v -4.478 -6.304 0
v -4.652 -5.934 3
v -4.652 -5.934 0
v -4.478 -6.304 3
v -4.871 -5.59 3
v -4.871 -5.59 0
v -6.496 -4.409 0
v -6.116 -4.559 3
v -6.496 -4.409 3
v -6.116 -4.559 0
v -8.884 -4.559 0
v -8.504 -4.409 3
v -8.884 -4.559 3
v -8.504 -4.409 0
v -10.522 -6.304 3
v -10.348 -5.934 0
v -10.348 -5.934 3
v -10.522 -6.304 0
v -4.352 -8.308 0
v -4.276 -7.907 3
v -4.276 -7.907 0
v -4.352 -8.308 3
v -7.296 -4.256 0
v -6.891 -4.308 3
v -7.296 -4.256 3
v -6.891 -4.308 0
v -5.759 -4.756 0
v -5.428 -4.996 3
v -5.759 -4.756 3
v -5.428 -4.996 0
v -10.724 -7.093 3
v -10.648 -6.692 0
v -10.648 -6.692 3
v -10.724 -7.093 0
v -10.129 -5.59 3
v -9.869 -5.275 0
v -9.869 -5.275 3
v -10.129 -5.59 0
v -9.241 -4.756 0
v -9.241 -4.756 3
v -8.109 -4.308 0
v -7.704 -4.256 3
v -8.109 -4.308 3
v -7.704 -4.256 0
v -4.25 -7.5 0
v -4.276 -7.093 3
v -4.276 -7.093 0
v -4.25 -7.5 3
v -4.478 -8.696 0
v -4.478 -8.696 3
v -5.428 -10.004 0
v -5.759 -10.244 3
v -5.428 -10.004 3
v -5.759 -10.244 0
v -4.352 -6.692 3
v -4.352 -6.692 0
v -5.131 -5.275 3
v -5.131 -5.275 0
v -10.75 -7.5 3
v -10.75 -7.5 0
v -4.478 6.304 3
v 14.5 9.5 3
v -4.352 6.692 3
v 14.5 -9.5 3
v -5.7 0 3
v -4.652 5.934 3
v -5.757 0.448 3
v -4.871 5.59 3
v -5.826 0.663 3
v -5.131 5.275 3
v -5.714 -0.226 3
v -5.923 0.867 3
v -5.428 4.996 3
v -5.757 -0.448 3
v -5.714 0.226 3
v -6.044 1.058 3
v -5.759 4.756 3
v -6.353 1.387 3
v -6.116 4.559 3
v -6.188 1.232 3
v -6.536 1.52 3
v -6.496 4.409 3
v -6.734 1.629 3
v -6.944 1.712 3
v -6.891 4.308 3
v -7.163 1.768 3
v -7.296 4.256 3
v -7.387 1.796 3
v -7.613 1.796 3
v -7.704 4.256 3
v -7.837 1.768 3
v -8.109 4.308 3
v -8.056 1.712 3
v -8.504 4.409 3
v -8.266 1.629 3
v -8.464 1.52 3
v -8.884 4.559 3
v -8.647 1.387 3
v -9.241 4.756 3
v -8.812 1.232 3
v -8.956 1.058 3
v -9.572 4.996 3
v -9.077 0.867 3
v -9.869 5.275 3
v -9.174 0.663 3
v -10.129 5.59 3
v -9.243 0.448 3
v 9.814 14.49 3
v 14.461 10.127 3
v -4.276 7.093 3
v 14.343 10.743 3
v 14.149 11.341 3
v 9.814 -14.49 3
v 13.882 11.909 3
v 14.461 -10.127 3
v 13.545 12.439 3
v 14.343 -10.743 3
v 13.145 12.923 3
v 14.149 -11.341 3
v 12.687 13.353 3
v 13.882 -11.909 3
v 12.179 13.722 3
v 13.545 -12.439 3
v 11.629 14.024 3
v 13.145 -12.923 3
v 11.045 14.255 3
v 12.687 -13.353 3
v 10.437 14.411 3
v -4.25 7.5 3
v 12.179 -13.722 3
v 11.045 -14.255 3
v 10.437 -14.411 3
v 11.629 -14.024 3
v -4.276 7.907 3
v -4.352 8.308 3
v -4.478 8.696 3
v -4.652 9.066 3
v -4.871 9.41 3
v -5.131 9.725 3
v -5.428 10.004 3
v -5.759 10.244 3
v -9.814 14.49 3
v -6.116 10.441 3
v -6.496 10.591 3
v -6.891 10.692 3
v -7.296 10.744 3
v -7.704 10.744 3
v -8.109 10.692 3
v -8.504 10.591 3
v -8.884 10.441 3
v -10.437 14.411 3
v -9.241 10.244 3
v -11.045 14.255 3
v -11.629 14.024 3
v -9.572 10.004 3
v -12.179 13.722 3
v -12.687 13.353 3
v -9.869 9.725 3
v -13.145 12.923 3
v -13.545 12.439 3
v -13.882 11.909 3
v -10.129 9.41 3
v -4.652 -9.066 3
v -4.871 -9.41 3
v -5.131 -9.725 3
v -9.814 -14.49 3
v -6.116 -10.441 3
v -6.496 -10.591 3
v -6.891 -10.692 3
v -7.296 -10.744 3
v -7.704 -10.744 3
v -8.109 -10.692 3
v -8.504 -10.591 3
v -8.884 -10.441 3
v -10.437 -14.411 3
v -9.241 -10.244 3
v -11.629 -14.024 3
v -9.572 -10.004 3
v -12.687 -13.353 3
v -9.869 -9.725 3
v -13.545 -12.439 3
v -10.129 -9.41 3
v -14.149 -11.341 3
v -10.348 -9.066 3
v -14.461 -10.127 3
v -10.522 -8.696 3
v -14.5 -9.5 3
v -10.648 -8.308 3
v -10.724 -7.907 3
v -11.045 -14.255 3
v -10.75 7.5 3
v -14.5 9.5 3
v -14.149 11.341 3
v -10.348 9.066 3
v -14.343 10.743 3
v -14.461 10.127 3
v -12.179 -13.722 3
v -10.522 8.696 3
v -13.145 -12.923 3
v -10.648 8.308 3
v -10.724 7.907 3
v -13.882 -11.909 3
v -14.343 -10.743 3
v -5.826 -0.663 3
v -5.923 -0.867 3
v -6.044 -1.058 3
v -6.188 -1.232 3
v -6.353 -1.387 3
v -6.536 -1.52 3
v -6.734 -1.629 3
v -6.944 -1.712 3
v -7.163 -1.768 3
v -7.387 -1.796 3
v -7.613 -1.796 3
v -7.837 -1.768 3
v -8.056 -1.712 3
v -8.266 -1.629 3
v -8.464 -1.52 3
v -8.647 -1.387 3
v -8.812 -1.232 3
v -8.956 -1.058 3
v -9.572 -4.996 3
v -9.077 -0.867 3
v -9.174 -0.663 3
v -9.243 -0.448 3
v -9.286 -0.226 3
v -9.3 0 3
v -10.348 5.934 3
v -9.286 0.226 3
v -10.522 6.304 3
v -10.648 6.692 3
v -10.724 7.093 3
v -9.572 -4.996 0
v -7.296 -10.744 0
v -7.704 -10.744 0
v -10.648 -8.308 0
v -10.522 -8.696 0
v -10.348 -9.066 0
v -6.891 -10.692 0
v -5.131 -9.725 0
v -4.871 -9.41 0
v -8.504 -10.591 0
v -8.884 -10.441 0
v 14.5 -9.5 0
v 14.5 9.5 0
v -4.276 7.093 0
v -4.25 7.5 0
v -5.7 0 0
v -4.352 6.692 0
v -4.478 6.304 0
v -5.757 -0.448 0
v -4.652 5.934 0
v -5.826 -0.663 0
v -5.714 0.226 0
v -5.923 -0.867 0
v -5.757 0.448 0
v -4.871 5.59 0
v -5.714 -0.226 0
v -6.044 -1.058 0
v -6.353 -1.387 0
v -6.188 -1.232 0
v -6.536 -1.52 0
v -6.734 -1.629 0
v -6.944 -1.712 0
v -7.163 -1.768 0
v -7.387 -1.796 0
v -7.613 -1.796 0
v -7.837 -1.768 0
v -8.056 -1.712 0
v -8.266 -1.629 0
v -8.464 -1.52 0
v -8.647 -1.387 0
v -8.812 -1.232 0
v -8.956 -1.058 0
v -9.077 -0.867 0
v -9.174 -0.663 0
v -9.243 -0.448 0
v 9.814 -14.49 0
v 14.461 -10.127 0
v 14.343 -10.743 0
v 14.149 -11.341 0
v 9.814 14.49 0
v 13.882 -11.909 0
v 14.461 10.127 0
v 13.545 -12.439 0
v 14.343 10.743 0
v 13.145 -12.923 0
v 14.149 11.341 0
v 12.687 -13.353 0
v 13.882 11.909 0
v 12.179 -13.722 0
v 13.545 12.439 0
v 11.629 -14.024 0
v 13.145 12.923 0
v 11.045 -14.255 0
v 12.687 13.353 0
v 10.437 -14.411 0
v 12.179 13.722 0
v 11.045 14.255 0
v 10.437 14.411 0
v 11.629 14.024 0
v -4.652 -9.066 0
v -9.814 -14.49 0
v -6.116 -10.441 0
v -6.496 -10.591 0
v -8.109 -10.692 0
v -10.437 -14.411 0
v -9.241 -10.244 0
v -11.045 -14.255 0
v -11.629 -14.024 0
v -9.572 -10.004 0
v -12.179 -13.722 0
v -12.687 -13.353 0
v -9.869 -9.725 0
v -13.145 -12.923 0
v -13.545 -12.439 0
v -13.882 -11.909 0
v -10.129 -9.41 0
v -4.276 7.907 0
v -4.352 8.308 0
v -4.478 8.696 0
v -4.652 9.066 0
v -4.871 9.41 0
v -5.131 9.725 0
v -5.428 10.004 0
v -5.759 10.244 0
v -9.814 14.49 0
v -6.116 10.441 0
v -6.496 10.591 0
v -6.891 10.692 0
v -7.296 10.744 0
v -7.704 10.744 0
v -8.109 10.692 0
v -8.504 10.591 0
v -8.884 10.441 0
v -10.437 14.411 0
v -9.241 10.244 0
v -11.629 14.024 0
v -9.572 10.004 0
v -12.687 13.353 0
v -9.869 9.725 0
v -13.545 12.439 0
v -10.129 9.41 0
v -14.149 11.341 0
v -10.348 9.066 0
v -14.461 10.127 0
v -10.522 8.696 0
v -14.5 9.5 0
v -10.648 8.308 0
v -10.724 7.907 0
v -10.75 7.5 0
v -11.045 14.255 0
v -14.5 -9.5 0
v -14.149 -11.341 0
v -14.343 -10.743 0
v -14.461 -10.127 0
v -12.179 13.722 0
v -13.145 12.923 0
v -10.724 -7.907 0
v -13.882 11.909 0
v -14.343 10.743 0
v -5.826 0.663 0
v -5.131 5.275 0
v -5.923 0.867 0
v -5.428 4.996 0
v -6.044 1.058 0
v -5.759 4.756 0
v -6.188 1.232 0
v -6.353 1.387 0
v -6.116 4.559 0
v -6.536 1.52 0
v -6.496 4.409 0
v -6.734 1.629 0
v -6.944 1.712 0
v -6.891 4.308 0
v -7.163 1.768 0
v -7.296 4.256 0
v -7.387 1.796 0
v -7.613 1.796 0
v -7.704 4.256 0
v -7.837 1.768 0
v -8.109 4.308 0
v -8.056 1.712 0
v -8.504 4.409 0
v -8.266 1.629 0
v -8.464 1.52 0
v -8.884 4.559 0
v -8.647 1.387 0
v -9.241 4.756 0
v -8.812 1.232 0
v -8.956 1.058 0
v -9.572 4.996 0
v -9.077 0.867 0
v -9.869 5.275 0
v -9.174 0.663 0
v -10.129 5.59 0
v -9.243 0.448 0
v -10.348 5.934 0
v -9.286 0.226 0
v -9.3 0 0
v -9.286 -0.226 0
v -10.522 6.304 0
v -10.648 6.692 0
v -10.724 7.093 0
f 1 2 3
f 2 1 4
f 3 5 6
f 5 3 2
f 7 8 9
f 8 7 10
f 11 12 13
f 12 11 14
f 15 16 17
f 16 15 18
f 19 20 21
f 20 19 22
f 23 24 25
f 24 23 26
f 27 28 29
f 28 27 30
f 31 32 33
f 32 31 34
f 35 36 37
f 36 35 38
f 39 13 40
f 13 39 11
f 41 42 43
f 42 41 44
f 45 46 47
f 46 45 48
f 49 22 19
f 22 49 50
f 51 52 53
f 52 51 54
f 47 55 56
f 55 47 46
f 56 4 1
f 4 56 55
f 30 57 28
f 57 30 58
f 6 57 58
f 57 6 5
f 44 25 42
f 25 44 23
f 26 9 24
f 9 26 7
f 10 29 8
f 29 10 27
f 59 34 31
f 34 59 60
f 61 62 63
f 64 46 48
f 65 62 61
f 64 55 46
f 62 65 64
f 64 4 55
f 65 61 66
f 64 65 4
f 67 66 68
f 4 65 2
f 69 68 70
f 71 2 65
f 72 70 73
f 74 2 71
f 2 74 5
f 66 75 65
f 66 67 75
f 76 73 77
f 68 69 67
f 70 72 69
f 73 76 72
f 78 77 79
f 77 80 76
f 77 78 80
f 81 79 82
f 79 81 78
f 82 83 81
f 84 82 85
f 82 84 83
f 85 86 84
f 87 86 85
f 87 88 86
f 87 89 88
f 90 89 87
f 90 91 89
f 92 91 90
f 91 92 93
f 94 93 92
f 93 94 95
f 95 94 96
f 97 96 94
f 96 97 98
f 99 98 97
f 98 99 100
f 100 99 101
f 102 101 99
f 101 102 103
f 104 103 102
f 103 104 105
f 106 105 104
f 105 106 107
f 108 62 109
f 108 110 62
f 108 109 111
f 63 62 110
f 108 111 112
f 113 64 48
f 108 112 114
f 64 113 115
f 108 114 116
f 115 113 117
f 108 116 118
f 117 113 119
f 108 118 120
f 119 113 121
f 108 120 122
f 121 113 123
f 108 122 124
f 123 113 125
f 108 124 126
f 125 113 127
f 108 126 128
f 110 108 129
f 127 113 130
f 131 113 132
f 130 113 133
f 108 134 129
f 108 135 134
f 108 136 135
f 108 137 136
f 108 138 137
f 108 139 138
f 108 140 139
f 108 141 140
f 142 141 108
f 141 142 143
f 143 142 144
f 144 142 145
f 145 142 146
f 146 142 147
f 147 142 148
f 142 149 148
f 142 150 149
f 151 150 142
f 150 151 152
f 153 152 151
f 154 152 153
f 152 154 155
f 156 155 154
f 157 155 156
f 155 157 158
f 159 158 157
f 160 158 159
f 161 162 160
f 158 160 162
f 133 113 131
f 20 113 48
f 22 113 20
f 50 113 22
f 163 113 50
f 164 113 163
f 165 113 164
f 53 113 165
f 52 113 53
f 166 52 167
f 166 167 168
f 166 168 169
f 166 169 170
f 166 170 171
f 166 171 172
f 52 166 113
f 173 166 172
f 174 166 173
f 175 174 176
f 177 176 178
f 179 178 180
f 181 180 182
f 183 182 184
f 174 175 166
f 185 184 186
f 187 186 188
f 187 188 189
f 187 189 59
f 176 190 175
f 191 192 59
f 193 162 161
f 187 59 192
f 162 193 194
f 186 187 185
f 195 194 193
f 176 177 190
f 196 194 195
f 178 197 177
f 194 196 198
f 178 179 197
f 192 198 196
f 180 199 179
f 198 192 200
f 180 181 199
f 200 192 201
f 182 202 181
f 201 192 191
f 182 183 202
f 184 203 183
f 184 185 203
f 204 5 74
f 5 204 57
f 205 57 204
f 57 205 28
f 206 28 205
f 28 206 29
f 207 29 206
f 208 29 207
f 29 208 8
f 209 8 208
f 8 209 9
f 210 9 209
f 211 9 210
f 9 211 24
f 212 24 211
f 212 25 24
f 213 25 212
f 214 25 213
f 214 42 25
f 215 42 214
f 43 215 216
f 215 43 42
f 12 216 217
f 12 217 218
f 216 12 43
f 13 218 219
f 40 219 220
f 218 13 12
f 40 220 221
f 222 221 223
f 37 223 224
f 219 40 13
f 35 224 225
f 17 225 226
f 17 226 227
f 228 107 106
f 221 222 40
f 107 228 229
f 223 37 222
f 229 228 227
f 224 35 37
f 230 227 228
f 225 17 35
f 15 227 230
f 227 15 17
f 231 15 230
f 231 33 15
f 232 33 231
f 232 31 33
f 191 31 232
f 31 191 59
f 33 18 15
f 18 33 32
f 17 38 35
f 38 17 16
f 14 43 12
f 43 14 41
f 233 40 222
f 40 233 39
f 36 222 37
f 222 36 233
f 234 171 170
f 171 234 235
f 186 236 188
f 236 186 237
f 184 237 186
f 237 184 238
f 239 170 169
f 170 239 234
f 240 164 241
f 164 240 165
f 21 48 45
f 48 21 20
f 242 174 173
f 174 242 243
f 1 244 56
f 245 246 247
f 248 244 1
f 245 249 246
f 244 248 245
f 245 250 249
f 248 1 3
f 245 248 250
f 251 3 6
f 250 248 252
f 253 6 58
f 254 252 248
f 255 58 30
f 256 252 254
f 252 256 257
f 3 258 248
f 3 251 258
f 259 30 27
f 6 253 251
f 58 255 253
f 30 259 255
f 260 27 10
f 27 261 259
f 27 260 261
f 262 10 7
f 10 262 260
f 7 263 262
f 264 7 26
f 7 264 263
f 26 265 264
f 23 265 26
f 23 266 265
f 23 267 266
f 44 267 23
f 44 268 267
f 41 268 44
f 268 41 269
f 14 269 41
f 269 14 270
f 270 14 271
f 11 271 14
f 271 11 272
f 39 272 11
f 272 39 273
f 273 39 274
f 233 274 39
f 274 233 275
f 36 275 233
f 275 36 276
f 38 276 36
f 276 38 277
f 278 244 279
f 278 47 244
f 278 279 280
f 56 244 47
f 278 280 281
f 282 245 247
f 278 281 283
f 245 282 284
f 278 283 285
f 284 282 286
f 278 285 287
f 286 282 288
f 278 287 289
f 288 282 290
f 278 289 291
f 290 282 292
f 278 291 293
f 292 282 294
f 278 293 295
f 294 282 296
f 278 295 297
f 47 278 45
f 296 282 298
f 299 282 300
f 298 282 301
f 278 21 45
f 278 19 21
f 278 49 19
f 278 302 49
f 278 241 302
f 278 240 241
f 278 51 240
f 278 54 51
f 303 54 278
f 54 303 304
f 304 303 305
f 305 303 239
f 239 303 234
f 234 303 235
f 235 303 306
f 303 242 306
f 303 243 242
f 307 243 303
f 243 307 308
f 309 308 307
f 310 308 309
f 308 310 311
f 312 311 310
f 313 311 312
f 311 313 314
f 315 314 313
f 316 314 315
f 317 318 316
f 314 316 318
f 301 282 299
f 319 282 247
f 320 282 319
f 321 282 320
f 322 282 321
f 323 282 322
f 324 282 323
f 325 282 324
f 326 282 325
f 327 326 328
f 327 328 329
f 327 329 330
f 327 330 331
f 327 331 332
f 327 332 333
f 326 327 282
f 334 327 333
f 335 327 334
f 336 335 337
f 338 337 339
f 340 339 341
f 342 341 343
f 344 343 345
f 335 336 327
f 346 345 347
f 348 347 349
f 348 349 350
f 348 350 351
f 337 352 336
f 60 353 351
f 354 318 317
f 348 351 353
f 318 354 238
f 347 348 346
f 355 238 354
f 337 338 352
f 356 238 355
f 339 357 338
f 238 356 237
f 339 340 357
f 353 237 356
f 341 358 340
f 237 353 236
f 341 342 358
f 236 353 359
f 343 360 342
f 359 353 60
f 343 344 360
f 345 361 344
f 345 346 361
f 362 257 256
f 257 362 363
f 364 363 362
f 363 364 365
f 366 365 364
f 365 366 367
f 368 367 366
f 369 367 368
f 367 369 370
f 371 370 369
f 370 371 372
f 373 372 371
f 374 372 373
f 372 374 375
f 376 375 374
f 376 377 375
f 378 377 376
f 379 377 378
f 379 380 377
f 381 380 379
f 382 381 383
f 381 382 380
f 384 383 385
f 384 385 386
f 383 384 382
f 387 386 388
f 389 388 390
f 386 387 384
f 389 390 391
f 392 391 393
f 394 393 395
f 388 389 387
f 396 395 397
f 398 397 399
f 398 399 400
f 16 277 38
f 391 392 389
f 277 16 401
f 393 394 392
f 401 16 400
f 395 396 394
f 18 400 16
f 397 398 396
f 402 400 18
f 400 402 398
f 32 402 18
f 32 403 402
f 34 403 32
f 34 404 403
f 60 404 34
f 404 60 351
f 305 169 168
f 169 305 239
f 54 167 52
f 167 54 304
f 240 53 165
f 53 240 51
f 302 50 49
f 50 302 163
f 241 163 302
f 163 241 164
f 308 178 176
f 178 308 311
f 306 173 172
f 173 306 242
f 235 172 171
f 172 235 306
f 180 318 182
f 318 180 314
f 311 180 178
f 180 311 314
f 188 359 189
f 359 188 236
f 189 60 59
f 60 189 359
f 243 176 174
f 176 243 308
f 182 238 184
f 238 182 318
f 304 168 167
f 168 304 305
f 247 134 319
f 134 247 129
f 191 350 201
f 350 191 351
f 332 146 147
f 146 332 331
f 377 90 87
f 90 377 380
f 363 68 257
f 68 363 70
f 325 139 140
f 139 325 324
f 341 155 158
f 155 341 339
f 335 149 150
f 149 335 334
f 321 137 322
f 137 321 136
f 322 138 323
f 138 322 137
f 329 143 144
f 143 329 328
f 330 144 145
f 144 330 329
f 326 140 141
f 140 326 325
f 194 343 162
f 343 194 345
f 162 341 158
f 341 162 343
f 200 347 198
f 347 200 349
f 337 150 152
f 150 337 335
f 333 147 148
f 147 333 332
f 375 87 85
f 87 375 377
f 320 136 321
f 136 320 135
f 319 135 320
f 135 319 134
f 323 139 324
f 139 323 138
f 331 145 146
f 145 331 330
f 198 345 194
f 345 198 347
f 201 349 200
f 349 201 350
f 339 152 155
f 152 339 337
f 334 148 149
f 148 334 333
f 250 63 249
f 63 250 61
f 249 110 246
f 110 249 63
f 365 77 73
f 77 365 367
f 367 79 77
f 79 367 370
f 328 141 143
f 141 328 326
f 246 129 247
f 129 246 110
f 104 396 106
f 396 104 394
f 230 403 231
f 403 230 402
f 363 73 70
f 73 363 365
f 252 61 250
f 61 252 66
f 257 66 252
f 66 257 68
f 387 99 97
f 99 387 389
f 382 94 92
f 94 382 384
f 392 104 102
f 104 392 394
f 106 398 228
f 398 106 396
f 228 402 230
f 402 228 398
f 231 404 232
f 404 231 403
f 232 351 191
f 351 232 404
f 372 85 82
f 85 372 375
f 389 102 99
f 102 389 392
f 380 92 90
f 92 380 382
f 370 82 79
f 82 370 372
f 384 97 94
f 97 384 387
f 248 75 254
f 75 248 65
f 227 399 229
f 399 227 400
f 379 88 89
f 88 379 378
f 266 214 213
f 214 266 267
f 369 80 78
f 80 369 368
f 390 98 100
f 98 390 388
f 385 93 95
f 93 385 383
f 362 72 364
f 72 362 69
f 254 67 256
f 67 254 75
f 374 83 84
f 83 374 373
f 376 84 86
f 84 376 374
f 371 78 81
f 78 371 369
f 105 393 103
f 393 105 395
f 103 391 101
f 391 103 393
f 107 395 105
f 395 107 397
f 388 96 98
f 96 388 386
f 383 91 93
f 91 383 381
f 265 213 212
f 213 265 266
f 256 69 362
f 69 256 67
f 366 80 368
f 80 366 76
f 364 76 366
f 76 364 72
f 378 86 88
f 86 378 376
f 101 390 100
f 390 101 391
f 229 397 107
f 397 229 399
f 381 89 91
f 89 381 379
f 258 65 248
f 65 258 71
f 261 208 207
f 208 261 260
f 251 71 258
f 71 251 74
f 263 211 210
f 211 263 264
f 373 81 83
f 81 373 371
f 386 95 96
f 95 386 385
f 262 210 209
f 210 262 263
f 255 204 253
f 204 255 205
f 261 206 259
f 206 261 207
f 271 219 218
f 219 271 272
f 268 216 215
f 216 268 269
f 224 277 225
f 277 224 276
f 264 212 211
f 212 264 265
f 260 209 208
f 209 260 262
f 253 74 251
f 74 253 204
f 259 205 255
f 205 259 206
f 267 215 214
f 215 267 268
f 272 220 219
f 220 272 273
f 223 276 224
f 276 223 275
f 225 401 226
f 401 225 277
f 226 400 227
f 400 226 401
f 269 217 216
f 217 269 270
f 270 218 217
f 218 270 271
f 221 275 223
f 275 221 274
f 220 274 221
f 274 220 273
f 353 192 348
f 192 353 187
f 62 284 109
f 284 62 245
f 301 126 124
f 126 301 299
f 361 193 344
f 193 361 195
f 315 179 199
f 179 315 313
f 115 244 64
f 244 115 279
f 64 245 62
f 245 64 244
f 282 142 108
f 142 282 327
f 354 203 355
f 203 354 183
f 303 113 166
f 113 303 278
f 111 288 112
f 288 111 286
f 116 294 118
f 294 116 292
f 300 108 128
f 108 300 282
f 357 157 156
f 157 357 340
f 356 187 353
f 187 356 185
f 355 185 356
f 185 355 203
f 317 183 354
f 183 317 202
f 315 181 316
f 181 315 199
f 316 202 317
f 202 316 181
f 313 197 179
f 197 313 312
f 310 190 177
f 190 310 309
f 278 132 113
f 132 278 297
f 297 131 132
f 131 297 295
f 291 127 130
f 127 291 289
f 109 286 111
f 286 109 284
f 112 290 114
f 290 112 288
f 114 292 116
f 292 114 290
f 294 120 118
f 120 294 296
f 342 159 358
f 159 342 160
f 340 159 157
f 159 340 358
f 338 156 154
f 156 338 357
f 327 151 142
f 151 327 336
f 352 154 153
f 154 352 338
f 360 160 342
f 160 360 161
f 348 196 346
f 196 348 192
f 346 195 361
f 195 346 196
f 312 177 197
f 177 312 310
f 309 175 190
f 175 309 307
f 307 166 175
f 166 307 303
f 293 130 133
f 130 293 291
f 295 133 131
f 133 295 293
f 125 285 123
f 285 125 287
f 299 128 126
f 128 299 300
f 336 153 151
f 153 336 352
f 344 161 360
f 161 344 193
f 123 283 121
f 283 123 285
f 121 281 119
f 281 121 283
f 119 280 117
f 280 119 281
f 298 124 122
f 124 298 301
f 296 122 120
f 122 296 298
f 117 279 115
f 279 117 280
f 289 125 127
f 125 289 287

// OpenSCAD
$fn = 50;


difference() {
	union() {
		hull() {
			translate(v = [-9.5000000000, 9.5000000000, 0]) {
				cylinder(h = 3, r = 5);
			}
			translate(v = [9.5000000000, 9.5000000000, 0]) {
				cylinder(h = 3, r = 5);
			}
			translate(v = [-9.5000000000, -9.5000000000, 0]) {
				cylinder(h = 3, r = 5);
			}
			translate(v = [9.5000000000, -9.5000000000, 0]) {
				cylinder(h = 3, r = 5);
			}
		}
	}
	union() {
		translate(v = [-7.5000000000, -7.5000000000, 0]) {
			cylinder(h = 3, r = 3.2500000000);
		}
		translate(v = [-7.5000000000, 7.5000000000, 0]) {
			cylinder(h = 3, r = 3.2500000000);
		}
		translate(v = [-7.5000000000, -7.5000000000, 0]) {
			cylinder(h = 3, r = 1.8000000000);
		}
		translate(v = [-7.5000000000, 0.0000000000, 0]) {
			cylinder(h = 3, r = 1.8000000000);
		}
		translate(v = [-7.5000000000, 7.5000000000, 0]) {
			cylinder(h = 3, r = 1.8000000000);
		}
		translate(v = [-7.5000000000, -7.5000000000, 0]) {
			cylinder(h = 3, r = 1.8000000000);
		}
		translate(v = [-7.5000000000, 0.0000000000, 0]) {
			cylinder(h = 3, r = 1.8000000000);
		}
		translate(v = [-7.5000000000, 7.5000000000, 0]) {
			cylinder(h = 3, r = 1.8000000000);
		}
		translate(v = [-7.5000000000, -7.5000000000, 0]) {
			cylinder(h = 3, r = 1.8000000000);
		}
		translate(v = [-7.5000000000, 0.0000000000, 0]) {
			cylinder(h = 3, r = 1.8000000000);
		}
		translate(v = [-7.5000000000, 7.5000000000, 0]) {
			cylinder(h = 3, r = 1.8000000000);
		}
	}
}
